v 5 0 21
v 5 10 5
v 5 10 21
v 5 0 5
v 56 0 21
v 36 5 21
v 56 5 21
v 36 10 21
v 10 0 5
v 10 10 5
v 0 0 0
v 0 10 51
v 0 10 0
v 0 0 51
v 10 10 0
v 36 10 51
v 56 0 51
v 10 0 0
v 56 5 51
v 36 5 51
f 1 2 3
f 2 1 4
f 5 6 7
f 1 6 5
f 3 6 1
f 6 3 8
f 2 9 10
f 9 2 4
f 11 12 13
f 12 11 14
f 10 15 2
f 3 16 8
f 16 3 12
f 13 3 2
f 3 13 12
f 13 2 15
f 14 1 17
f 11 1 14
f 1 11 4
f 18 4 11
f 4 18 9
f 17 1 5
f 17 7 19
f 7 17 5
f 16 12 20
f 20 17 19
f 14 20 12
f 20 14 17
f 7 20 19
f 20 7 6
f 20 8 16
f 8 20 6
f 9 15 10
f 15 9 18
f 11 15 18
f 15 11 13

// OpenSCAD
union() {
    translate([0, 0, 5])
        cube([5, 10, 16]);
    translate([0, 0, 21])
        cube([56, 5, 30]);
    translate([0, 5, 21])
        cube([36, 5, 30]);
    cube([10, 10, 5]);
}
